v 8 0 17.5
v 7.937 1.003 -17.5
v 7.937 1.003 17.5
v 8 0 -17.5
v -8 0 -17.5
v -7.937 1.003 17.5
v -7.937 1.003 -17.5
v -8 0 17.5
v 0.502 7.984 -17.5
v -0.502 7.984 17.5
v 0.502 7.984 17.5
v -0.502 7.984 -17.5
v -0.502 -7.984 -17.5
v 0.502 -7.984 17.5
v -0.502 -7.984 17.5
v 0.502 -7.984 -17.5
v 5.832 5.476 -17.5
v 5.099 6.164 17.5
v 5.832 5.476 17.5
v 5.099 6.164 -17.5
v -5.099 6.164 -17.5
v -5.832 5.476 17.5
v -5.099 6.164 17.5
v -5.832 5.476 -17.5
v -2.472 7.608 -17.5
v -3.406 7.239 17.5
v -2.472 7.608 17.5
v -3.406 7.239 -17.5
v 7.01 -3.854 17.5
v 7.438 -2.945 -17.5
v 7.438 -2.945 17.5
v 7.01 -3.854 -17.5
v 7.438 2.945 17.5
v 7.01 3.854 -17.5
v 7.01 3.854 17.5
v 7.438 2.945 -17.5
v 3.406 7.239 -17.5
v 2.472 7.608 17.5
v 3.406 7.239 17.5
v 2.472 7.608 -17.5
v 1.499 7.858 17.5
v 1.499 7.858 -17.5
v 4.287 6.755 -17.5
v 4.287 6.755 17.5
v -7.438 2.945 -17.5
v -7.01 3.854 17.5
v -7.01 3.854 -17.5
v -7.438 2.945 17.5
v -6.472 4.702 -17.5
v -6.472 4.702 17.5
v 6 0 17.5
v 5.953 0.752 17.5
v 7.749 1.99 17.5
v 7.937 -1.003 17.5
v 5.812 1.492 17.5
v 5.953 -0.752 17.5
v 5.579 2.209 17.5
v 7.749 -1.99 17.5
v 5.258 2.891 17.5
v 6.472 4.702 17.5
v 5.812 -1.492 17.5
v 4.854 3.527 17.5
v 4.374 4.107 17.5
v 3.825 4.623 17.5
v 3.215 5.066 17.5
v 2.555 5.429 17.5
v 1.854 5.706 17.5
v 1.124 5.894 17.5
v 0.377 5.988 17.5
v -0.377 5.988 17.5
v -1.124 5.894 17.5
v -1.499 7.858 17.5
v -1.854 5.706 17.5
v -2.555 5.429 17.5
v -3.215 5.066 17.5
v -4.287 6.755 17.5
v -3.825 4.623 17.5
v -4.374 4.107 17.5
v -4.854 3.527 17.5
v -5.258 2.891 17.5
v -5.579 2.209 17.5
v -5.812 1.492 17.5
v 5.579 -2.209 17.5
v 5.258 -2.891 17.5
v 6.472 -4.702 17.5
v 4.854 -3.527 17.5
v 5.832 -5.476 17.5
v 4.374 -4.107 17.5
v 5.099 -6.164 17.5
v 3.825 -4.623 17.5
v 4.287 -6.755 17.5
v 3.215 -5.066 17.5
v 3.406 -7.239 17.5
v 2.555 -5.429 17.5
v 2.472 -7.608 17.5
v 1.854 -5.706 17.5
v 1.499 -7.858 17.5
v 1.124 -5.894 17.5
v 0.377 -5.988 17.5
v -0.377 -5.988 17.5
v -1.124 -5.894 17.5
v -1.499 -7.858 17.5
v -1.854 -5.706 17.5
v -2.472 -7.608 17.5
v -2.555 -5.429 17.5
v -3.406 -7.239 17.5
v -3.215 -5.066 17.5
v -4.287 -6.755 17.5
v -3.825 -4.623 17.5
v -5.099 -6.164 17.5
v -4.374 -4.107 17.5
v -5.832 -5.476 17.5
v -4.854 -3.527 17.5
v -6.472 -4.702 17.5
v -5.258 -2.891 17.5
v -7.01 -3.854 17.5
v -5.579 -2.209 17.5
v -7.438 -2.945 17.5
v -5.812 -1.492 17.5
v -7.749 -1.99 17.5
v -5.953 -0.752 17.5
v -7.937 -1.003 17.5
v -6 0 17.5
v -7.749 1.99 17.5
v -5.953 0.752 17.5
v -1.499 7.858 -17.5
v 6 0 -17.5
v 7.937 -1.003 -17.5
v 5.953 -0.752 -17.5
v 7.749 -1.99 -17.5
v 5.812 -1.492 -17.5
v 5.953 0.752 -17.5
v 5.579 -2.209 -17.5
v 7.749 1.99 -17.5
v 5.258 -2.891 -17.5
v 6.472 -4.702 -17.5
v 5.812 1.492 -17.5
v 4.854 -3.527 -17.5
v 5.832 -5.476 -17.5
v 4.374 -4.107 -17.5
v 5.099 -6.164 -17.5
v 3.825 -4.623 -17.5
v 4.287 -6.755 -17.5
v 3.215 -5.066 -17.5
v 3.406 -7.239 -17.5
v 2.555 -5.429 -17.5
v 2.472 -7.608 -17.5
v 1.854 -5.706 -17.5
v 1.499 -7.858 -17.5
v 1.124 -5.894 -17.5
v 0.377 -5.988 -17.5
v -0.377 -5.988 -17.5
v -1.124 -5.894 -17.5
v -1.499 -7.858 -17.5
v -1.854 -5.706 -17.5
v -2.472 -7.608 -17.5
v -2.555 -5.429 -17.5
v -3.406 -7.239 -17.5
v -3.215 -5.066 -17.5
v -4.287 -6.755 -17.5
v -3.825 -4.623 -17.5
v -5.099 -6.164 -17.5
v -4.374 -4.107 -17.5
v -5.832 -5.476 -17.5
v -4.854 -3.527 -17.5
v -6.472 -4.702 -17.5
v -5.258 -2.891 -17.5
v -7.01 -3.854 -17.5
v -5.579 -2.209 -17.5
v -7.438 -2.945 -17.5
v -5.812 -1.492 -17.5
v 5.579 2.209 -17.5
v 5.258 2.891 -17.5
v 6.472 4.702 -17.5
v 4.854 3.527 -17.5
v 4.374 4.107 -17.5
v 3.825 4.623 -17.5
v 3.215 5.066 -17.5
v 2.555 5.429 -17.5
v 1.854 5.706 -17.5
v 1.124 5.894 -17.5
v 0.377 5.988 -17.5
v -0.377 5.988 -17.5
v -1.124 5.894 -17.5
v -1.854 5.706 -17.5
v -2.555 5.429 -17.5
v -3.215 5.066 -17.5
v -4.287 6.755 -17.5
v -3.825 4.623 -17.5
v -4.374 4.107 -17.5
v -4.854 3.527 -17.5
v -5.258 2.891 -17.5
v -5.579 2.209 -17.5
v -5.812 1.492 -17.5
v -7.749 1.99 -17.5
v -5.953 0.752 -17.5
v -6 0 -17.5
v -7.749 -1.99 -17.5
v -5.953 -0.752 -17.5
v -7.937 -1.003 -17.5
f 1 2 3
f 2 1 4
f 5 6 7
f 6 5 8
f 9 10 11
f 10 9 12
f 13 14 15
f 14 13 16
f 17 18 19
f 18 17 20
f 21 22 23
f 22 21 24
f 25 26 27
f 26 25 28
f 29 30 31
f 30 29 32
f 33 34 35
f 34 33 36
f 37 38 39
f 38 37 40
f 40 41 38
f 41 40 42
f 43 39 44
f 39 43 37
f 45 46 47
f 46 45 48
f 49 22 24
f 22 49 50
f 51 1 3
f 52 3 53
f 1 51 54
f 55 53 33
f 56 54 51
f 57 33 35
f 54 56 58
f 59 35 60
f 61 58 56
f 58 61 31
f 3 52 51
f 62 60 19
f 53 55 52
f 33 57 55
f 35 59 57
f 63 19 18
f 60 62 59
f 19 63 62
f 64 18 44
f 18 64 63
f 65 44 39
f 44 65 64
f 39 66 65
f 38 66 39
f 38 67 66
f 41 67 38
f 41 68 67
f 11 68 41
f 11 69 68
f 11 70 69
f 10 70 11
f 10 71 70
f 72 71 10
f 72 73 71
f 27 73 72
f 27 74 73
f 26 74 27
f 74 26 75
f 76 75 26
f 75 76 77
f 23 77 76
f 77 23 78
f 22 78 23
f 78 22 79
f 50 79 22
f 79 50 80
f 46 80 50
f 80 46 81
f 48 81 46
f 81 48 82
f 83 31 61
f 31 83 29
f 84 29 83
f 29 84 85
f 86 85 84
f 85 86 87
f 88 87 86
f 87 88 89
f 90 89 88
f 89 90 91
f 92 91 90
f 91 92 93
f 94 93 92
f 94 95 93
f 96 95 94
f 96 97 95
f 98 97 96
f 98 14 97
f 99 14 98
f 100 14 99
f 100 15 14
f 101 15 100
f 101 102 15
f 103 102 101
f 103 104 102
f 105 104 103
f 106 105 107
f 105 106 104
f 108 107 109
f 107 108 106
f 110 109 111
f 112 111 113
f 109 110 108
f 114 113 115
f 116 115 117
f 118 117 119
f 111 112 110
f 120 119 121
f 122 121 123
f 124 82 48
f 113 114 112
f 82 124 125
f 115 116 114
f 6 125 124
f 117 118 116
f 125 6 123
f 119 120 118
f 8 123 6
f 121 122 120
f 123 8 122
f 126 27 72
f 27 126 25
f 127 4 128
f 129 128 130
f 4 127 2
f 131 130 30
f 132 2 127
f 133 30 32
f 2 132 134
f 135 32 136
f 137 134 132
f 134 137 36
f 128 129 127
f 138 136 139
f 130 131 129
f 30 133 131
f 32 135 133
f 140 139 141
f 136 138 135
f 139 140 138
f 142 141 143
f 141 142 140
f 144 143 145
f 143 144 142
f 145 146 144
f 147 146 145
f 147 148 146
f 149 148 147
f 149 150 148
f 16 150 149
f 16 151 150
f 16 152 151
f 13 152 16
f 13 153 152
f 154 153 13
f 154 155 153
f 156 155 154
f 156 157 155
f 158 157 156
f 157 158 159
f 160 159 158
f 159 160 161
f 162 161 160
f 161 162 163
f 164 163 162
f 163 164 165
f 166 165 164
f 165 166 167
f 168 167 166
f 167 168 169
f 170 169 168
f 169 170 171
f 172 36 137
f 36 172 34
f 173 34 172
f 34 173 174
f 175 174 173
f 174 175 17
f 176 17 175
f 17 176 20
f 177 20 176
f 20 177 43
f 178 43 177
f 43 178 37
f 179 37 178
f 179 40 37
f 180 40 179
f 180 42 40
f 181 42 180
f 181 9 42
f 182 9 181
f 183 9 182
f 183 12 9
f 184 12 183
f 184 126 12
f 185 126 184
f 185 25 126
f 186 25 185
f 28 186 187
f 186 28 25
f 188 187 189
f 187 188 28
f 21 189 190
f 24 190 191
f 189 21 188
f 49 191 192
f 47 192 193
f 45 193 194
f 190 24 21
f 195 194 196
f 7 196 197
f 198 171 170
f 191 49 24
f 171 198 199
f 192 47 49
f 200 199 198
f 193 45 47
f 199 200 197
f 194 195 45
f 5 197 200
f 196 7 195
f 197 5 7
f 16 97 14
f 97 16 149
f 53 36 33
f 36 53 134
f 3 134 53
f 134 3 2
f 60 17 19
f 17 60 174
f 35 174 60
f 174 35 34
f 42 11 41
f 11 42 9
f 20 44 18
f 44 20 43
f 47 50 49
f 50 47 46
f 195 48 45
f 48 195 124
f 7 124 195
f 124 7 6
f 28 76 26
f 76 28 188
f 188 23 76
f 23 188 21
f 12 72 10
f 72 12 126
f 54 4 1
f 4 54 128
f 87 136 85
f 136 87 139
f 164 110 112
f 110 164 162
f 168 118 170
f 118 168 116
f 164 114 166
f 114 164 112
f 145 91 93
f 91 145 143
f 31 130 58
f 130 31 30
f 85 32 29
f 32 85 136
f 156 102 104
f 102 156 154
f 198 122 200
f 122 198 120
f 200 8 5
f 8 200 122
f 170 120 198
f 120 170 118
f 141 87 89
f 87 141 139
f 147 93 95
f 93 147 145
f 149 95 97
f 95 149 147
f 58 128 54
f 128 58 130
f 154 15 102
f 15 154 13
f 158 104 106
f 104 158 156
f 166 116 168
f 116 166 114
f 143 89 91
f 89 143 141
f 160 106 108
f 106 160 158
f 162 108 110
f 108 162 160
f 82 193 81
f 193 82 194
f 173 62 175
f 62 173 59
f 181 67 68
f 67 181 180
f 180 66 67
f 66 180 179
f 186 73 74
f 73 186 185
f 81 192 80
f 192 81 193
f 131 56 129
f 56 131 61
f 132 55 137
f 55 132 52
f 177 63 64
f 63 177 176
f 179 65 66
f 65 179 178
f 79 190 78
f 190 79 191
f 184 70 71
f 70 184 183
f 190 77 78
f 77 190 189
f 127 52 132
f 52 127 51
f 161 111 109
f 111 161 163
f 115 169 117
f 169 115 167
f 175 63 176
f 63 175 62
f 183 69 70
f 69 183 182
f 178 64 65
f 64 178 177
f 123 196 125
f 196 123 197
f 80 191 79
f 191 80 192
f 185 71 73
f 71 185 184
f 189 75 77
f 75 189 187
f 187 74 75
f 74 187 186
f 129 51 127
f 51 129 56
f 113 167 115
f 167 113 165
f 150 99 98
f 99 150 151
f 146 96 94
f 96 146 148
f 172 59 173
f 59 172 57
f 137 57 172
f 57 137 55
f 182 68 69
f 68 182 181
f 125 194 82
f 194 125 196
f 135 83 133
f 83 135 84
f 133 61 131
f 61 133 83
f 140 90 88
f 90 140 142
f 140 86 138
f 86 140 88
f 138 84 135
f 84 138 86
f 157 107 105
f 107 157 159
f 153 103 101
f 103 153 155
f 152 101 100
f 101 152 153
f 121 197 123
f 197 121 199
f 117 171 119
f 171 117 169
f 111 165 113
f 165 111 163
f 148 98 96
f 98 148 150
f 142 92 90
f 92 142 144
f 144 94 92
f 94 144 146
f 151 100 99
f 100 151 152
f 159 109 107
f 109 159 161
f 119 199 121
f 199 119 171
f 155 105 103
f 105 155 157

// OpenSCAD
$fn = 50;


difference() {
	union() {
		translate(v = [0, 0, -17.5000000000]) {
			cylinder(h = 35, r = 8.0000000000);
		}
	}
	union() {
		translate(v = [0, 0, -100.0000000000]) {
			cylinder(h = 200, r = 6);
		}
	}
}
